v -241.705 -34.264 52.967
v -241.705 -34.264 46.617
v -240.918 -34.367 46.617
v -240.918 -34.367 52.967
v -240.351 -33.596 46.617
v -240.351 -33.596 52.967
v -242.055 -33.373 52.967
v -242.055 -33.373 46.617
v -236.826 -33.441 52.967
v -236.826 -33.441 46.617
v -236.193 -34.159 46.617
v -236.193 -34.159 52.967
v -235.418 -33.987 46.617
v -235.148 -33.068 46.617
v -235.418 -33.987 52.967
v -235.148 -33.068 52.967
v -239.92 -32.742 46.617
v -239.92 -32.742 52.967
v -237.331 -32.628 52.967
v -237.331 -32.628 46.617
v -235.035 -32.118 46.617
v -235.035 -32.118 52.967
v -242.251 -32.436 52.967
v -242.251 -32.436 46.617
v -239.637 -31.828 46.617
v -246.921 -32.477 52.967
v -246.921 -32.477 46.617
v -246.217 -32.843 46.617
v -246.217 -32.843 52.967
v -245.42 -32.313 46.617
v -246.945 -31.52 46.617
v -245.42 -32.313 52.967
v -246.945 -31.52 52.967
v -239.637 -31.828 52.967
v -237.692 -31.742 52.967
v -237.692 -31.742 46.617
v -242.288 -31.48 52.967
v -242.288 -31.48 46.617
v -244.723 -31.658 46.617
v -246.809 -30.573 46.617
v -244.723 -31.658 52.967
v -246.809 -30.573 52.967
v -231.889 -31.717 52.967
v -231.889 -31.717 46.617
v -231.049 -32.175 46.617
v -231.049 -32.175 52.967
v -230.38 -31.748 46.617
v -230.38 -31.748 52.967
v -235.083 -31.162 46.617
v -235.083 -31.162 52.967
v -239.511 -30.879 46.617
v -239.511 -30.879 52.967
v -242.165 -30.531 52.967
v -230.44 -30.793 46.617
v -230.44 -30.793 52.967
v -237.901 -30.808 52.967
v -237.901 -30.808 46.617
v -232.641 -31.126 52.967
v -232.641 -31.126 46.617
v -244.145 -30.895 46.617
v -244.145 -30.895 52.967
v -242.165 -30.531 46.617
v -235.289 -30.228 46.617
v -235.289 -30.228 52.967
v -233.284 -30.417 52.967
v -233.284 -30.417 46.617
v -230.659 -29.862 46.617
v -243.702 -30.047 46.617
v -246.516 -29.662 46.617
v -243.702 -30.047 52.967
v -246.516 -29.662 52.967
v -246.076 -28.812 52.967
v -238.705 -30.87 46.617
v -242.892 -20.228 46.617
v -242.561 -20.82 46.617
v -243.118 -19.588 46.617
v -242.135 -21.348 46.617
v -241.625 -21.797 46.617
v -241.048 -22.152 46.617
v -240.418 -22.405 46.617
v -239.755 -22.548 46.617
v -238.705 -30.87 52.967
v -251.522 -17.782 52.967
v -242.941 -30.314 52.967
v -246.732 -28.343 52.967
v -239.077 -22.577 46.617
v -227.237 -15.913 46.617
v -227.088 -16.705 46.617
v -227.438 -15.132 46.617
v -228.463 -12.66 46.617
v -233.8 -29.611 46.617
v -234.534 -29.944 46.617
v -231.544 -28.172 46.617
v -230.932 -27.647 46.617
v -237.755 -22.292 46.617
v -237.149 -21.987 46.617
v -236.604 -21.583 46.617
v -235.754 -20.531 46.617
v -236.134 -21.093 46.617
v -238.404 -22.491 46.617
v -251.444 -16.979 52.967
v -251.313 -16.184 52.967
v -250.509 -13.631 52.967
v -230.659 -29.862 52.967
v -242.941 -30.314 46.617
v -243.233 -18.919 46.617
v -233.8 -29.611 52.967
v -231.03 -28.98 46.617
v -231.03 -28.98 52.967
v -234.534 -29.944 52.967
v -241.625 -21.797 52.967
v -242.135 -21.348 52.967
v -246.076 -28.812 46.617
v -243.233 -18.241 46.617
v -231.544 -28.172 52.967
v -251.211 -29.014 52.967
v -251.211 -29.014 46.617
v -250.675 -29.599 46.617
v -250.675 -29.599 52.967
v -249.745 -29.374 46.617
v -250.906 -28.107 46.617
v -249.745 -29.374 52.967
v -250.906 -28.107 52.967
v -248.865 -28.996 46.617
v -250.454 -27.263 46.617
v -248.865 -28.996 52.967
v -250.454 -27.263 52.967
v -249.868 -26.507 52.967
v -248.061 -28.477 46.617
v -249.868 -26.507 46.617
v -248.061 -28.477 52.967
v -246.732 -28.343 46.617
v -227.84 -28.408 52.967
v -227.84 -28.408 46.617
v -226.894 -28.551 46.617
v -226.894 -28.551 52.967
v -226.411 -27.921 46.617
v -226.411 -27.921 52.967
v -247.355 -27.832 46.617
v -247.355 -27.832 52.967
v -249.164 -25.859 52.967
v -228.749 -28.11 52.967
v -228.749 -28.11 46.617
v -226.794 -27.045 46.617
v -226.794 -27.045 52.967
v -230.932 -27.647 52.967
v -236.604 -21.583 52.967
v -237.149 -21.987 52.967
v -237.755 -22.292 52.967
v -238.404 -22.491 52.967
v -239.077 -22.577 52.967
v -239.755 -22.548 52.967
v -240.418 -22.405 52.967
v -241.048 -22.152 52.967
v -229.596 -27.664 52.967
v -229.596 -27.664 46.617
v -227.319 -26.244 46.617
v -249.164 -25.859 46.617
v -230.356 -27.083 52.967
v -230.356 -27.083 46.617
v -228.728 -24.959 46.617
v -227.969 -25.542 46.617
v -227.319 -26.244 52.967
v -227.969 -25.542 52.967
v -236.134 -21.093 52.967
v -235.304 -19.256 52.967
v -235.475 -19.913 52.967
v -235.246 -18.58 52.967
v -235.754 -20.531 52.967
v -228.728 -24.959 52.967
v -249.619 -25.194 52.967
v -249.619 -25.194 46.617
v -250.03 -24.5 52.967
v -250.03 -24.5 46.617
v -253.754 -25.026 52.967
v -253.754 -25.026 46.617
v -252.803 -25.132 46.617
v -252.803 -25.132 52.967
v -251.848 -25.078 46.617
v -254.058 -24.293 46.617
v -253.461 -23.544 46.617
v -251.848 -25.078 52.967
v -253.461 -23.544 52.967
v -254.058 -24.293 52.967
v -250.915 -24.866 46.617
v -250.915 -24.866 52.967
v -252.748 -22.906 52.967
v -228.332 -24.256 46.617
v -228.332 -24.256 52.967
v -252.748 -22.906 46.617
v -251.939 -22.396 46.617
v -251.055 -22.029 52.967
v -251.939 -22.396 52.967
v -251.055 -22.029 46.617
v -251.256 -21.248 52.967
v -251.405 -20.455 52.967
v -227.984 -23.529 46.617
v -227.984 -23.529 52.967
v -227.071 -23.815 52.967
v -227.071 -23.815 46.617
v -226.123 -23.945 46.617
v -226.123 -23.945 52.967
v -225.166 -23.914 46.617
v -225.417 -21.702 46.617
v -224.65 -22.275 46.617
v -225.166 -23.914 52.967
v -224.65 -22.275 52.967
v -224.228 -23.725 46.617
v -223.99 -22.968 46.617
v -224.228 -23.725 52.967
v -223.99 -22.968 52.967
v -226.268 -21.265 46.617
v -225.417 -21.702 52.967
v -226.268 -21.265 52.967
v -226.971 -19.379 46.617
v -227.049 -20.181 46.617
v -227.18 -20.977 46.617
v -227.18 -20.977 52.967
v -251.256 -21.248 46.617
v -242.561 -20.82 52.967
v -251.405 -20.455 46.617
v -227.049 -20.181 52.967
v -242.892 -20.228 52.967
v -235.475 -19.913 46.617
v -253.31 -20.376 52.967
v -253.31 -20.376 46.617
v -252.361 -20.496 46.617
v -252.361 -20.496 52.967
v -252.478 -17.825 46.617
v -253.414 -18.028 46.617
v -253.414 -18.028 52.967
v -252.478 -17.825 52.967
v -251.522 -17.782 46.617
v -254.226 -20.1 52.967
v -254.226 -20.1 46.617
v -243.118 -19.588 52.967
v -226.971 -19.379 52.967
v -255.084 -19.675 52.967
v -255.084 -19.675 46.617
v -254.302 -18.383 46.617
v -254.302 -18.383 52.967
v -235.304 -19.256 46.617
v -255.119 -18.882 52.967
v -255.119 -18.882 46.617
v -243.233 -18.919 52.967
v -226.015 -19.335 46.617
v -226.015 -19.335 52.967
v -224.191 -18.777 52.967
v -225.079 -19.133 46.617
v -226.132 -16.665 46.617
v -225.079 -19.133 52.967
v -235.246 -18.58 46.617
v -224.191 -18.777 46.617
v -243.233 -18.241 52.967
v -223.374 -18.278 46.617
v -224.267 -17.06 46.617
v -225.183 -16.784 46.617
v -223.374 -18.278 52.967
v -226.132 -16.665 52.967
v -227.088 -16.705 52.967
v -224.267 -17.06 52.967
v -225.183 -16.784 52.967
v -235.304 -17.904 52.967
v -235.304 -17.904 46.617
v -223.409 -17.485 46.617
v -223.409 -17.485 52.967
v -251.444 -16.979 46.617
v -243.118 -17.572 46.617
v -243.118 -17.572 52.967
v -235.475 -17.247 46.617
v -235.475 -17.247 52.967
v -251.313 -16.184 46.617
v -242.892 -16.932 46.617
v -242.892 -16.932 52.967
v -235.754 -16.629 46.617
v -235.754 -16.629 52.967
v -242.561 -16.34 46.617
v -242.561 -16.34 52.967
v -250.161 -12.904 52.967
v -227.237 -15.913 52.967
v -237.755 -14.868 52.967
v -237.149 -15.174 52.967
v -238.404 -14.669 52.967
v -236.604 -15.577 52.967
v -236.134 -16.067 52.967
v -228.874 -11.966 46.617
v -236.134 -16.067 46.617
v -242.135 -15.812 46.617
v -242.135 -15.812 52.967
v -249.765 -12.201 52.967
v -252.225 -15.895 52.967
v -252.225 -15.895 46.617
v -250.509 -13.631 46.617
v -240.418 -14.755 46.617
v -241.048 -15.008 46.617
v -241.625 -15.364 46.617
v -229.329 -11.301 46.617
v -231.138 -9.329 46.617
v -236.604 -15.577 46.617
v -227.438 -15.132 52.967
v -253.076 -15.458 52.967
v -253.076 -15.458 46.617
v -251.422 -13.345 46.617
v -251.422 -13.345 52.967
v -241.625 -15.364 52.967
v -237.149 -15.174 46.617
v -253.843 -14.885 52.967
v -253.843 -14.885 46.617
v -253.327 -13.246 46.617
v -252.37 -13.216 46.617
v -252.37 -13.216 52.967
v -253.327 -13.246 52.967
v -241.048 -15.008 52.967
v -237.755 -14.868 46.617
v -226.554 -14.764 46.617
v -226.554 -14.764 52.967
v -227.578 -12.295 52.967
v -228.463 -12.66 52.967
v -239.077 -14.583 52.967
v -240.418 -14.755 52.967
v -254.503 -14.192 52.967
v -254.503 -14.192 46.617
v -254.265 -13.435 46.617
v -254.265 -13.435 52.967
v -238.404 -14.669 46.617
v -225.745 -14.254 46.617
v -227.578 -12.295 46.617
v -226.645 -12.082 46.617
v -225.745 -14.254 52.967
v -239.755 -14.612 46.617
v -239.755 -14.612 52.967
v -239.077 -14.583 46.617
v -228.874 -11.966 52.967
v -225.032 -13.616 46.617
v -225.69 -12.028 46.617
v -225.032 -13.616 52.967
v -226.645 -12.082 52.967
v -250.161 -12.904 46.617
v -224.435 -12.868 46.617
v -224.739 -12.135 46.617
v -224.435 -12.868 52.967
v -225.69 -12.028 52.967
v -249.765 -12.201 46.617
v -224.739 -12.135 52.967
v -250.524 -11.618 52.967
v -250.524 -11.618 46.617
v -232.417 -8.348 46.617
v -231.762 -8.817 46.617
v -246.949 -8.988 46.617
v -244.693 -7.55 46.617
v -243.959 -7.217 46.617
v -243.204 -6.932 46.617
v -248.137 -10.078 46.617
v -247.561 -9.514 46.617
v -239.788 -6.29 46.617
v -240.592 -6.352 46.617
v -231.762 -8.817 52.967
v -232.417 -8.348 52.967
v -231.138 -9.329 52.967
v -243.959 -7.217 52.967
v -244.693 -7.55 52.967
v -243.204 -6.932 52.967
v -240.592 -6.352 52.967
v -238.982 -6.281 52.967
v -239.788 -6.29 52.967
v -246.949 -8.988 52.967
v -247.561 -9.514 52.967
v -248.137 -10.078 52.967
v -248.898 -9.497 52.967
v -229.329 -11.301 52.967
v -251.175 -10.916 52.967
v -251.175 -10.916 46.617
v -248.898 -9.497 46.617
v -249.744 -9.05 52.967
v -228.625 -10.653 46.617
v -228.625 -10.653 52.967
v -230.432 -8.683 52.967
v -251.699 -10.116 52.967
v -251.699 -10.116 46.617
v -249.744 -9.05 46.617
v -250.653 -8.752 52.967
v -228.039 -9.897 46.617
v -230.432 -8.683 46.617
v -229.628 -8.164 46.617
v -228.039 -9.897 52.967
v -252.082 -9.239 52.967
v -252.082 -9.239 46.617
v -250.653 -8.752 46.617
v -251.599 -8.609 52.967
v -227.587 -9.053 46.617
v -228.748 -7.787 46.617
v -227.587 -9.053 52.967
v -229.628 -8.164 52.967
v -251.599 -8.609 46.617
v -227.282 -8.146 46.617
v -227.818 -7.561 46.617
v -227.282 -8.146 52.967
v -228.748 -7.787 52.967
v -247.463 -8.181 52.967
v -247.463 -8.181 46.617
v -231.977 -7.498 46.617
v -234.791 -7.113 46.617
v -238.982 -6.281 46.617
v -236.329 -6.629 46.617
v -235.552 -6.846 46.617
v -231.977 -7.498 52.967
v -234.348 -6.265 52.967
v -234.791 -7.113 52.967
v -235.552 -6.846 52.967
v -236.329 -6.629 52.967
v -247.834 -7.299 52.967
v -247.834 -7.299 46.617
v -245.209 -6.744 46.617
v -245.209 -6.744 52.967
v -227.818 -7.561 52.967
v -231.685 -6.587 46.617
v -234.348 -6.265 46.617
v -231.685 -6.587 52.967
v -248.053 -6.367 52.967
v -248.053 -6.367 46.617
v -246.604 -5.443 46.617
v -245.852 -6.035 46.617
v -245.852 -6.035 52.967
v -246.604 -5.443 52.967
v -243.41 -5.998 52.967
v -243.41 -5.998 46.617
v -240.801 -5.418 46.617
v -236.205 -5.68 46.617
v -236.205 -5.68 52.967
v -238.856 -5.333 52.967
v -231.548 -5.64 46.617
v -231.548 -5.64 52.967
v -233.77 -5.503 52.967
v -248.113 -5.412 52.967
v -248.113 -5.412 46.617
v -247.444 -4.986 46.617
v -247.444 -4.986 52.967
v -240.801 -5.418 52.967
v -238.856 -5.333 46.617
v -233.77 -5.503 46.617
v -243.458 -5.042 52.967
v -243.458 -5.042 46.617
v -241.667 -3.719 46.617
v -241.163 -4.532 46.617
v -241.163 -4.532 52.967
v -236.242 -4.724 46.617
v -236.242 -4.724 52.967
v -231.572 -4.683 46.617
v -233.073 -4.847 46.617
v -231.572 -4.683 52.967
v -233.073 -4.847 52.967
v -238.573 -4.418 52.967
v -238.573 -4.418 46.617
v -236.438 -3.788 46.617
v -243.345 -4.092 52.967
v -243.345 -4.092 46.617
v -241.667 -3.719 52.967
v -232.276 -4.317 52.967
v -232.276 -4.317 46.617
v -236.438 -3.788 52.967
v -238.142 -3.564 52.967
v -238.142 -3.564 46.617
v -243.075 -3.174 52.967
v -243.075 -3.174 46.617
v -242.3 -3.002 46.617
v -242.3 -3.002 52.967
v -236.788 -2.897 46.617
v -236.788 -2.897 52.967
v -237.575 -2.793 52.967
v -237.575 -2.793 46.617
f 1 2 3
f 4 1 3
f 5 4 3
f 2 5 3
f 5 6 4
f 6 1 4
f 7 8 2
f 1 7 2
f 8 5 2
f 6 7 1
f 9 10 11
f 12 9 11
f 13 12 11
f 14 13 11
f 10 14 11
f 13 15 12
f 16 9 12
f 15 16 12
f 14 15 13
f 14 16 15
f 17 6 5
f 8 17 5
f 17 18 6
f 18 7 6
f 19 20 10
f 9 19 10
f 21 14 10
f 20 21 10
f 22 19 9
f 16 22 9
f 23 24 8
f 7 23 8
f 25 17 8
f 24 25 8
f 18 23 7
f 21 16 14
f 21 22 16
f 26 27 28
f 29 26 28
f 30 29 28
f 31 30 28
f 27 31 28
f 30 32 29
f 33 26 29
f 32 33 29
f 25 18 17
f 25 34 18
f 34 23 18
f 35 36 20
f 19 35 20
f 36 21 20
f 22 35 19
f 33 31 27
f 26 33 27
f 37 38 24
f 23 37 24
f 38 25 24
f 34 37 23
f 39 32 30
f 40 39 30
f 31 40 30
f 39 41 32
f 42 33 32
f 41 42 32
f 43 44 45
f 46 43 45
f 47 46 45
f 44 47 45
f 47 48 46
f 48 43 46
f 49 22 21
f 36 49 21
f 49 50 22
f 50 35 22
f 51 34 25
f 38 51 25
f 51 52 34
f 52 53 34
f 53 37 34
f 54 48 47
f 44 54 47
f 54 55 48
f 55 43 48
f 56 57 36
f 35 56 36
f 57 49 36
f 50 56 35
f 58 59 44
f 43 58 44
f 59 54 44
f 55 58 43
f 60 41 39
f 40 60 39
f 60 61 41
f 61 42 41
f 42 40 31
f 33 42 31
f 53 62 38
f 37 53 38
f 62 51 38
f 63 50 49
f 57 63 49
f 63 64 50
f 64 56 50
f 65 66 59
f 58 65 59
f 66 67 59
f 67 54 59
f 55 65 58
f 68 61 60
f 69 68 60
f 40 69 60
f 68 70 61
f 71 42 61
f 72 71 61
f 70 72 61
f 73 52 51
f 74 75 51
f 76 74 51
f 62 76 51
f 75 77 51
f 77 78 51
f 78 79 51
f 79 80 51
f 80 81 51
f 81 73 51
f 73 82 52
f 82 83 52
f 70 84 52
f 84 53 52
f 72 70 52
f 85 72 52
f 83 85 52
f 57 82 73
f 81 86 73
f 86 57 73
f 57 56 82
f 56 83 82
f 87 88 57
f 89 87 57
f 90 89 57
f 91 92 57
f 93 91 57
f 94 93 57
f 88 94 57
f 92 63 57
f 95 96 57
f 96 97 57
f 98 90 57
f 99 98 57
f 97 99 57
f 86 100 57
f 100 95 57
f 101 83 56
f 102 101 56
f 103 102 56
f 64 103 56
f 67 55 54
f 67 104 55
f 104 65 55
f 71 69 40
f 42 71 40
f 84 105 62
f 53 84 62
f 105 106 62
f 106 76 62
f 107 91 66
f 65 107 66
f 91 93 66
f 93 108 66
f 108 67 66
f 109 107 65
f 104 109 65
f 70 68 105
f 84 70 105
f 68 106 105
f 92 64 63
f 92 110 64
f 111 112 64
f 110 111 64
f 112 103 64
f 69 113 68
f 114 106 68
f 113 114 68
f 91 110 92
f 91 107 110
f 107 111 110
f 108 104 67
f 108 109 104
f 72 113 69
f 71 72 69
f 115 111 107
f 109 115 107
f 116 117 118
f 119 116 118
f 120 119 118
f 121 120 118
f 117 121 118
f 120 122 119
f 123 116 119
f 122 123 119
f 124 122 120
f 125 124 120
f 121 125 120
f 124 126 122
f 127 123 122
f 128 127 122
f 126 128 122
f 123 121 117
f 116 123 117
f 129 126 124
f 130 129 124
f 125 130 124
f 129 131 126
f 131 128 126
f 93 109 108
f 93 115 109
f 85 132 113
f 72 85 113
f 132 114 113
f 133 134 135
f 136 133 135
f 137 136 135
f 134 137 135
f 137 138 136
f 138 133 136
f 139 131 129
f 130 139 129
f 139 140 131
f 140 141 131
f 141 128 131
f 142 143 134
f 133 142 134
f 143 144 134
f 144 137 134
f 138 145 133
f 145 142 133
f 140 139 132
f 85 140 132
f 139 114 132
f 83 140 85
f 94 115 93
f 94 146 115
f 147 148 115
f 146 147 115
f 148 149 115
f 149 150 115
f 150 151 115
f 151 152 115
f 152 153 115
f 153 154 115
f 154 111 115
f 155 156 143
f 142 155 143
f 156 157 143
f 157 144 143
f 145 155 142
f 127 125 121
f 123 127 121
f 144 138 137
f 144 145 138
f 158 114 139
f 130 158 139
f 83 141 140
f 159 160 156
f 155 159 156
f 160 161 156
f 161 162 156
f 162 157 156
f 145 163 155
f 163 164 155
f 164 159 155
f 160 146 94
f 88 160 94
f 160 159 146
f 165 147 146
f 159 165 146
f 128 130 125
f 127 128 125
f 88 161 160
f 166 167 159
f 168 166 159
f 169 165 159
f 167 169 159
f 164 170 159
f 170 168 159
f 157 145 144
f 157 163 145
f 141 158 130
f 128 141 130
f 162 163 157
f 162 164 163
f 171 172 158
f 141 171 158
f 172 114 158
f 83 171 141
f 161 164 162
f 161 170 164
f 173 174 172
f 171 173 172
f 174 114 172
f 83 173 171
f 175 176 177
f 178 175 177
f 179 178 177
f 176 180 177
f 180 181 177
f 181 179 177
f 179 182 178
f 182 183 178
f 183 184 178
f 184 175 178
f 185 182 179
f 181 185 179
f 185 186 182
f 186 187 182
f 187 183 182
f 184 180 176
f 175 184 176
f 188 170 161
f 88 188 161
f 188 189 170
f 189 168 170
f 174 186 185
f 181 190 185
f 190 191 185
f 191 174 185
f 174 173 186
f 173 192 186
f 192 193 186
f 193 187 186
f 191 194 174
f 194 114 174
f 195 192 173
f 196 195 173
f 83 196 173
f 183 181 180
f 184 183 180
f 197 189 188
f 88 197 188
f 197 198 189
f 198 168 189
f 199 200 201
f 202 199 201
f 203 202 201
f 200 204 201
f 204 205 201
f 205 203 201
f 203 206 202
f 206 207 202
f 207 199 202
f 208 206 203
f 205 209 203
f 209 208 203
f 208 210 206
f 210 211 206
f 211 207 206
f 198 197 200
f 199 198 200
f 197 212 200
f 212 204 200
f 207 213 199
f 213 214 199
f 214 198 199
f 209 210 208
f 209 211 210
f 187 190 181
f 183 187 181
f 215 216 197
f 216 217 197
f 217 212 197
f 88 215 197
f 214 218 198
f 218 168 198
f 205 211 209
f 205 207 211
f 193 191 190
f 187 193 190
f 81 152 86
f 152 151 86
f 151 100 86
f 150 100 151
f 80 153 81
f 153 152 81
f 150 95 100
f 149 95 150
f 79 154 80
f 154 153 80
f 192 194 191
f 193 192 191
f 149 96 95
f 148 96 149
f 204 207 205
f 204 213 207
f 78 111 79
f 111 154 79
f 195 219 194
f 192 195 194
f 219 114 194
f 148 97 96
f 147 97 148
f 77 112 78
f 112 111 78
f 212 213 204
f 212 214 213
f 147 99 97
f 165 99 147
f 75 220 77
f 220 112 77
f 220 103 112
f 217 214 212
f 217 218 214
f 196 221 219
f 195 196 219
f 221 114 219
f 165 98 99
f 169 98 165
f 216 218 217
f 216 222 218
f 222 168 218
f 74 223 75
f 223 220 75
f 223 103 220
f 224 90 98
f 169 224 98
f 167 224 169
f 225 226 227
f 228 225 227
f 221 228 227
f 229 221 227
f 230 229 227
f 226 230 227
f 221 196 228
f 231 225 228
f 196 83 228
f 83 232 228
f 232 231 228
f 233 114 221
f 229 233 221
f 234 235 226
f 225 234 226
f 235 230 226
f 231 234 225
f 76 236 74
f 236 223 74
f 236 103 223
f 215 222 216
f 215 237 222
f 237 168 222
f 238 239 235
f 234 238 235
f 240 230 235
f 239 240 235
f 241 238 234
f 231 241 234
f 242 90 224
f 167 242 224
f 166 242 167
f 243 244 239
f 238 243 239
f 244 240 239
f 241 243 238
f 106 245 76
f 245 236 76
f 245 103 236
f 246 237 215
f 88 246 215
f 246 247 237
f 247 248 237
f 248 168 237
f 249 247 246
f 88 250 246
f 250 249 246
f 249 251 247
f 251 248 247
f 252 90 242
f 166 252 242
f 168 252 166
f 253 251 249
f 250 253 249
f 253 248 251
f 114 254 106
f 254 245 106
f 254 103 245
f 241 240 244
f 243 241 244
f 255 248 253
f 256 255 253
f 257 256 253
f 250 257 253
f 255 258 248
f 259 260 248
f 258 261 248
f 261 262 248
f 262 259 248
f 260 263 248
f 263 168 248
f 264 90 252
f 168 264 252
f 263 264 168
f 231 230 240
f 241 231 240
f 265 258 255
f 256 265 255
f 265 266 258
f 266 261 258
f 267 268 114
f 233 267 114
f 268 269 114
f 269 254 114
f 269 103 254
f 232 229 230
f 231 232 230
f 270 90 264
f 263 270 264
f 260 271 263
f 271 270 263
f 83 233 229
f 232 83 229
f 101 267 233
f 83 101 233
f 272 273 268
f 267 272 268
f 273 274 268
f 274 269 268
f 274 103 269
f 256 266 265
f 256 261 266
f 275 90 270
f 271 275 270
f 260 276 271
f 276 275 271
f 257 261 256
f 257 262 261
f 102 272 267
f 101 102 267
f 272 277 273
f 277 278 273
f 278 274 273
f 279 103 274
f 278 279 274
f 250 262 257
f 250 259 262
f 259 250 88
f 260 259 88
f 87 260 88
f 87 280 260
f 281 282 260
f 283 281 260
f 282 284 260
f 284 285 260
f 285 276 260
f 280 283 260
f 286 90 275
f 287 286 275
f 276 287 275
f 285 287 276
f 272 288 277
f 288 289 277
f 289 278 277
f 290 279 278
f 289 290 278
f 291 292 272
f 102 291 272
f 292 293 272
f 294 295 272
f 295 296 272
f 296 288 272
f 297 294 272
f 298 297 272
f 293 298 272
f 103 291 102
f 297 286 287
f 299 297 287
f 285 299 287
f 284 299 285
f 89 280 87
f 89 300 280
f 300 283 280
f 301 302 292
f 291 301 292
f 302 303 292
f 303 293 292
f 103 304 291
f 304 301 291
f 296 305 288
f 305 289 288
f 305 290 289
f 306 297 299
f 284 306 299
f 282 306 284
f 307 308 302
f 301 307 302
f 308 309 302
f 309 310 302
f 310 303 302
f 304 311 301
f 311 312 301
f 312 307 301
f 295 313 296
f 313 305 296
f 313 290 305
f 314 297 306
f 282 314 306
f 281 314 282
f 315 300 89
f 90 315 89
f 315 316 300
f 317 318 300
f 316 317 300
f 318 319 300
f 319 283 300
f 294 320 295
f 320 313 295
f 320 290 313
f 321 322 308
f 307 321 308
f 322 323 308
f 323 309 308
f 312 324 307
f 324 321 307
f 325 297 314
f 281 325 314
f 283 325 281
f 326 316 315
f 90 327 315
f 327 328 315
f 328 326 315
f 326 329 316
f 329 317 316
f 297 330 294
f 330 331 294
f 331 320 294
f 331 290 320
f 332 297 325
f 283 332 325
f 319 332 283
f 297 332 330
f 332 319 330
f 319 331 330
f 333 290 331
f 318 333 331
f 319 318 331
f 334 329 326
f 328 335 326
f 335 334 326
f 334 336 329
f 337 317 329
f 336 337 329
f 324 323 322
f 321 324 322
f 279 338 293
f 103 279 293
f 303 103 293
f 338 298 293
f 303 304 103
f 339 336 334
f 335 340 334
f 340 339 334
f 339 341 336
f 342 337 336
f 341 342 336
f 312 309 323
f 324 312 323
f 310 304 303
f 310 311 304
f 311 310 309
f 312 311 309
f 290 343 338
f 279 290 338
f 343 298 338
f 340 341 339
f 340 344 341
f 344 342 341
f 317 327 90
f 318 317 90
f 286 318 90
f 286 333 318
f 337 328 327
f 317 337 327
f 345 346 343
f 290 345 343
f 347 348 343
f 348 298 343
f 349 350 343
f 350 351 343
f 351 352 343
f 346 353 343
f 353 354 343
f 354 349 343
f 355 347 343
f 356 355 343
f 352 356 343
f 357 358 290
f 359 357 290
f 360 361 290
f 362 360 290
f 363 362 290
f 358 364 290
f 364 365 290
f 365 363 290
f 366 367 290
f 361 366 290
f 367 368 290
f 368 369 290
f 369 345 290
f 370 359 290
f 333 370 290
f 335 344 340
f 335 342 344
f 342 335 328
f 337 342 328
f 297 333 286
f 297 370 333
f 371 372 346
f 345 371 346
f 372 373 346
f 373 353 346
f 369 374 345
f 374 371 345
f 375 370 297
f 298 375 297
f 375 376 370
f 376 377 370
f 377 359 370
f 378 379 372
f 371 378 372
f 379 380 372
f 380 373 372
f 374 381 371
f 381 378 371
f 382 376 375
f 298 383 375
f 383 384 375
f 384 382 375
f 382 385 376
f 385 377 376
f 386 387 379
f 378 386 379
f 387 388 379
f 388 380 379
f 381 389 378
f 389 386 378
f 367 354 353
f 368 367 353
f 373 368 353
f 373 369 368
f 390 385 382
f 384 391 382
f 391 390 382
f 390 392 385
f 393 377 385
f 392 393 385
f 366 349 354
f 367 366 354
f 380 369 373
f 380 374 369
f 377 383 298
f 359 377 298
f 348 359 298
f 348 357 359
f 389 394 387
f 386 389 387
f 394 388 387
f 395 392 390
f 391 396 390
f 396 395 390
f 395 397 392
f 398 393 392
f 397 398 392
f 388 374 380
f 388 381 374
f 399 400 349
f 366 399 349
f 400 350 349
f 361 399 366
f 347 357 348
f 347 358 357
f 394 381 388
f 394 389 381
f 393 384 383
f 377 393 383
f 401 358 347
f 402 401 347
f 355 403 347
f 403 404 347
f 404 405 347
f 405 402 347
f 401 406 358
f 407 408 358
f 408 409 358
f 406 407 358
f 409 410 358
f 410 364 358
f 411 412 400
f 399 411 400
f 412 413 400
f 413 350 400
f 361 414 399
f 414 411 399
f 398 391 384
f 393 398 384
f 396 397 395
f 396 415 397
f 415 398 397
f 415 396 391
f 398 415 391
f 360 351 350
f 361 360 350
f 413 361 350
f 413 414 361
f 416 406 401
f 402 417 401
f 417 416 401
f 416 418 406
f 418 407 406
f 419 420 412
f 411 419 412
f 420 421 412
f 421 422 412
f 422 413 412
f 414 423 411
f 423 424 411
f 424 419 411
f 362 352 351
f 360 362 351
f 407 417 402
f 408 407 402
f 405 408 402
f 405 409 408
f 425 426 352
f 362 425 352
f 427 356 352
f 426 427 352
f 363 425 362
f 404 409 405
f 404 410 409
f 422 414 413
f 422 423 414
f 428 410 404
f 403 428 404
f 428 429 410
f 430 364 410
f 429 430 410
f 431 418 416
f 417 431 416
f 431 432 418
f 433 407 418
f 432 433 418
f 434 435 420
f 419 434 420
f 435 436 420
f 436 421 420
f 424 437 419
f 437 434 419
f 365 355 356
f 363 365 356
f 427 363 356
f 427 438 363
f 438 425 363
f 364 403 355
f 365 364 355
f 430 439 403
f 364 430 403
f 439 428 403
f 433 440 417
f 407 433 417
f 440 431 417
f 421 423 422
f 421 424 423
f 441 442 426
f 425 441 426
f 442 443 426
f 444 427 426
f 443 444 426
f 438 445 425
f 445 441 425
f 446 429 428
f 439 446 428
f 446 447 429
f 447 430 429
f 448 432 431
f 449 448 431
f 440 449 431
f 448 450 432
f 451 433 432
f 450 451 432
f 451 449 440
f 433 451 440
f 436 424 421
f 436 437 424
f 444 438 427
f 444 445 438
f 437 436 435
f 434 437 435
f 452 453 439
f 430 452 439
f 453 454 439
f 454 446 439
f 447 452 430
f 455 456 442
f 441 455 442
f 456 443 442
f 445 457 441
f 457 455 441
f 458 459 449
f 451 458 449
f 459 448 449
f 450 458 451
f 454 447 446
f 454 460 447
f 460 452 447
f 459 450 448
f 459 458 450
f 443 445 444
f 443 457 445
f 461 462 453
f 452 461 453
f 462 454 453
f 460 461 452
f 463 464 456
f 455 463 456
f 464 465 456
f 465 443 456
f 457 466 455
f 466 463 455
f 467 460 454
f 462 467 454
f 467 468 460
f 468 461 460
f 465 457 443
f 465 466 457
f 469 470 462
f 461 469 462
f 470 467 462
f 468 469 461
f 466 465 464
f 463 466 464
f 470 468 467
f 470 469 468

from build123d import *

# Parameters (mm, degrees)
SKETCH5_R           = 0.396875
BOSS_EXTRUDE2_DEPTH = 6.35
SKETCH6_R           = 2.9972
CUT_EXTRUDE1_DEPTH  = 258.501368276
SKETCH7_R           = 4.0005
CUT_EXTRUDE2_DEPTH  = 258.501368276


with BuildPart() as part:
    # Sketch5 → Boss-Extrude2 (new body)
    with BuildSketch(Plane(origin=(0, 0, 46.616707813), x_dir=(-1, 0, 0), z_dir=(0, 0, -1))):
        with BuildLine():
            ThreePointArc((246.921074011, -32.476835359), (246.808601397, -30.573015348), (246.075978074, -28.812207638))
            ThreePointArc((246.075978074, -28.812207638), (246.731600791, -28.342840277), (247.355067366, -27.831531862))
            ThreePointArc((247.355067366, -27.831531862), (248.865338892, -28.996117901), (250.674701217, -29.598935203))
            ThreePointArc((250.674701217, -29.598935203), (250.946601365, -29.309785139), (251.211187708, -29.013927881))
            ThreePointArc((251.211187708, -29.013927881), (250.454353229, -27.263390165), (249.163680793, -25.859344087))
            ThreePointArc((249.163680793, -25.859344087), (249.61923153, -25.194046866), (250.030220693, -24.500335994))
            ThreePointArc((250.030220693, -24.500335994), (251.847723585, -25.078145617), (253.754143671, -25.025770226))
            ThreePointArc((253.754143671, -25.025770226), (253.910751087, -24.661062717), (254.058191779, -24.292553976))
            ThreePointArc((254.058191779, -24.292553976), (252.748280843, -22.906439239), (251.055233439, -22.028503472))
            ThreePointArc((251.055233439, -22.028503472), (251.255766054, -21.247521054), (251.404706445, -20.455079495))
            ThreePointArc((251.404706445, -20.455079495), (253.310223032, -20.376420334), (255.083758479, -19.675169494))
            ThreePointArc((255.083758479, -19.675169494), (255.106183999, -19.278893649), (255.118695516, -18.882181018))
            ThreePointArc((255.118695516, -18.882181018), (253.413702715, -18.027675153), (251.522486845, -17.781741707))
            ThreePointArc((251.522486845, -17.781741707), (251.443814146, -16.979272099), (251.312741357, -16.183679999))
            ThreePointArc((251.312741357, -16.183679999), (253.076438214, -15.45803951), (254.503174475, -14.192494423))
            ThreePointArc((254.503174475, -14.192494423), (254.388713248, -13.812446955), (254.264786518, -13.435379832))
            ThreePointArc((254.264786518, -13.435379832), (252.370359146, -13.215548859), (250.509083356, -13.631280938))
            ThreePointArc((250.509083356, -13.631280938), (250.16069443, -12.904113816), (249.765417774, -12.201331325))
            ThreePointArc((249.765417774, -12.201331325), (251.174567032, -10.91623246), (252.082418656, -9.23903654))
            ThreePointArc((252.082418656, -9.23903654), (251.844876396, -8.921056785), (251.599458811, -8.60911503))
            ThreePointArc((251.599458811, -8.60911503), (249.744092768, -9.050473808), (248.137254388, -10.077727986))
            ThreePointArc((248.137254388, -10.077727986), (247.561170083, -9.513570439), (246.949365757, -8.988363496))
            ThreePointArc((246.949365757, -8.988363496), (247.834003218, -7.298808145), (248.113469901, -5.412255973))
            ThreePointArc((248.113469901, -5.412255973), (247.781497711, -5.19469698), (247.444190253, -4.985505373))
            ThreePointArc((247.444190253, -4.985505373), (245.851670066, -6.03481952), (244.69307752, -7.549693784))
            ThreePointArc((244.69307752, -7.549693784), (243.958782103, -7.216591536), (243.204242739, -6.932307851))
            ThreePointArc((243.204242739, -6.932307851), (243.457668071, -5.042081324), (243.075042005, -3.173718934))
            ThreePointArc((243.075042005, -3.173718934), (242.688680631, -3.08282153), (242.300167558, -3.001611666))
            ThreePointArc((242.300167558, -3.001611666), (241.162574665, -4.532318409), (240.591971311, -6.352096565))
            ThreePointArc((240.591971311, -6.352096565), (239.788031649, -6.290226665), (238.981765829, -6.281155045))
            ThreePointArc((238.981765829, -6.281155045), (238.573412195, -4.418246557), (237.574843733, -2.793426028))
            ThreePointArc((237.574843733, -2.793426028), (237.180694057, -2.840153782), (236.78783578, -2.896720768))
            ThreePointArc((236.78783578, -2.896720768), (236.242380673, -4.724194283), (236.328589698, -6.629384229))
            ThreePointArc((236.328589698, -6.629384229), (235.551972777, -6.846209099), (234.79122806, -7.113443716))
            ThreePointArc((234.79122806, -7.113443716), (233.770348935, -5.502547525), (232.27628017, -4.317246193))
            ThreePointArc((232.27628017, -4.317246193), (231.921882461, -4.495963046), (231.572063485, -4.68348407))
            ThreePointArc((231.572063485, -4.68348407), (231.6845361, -6.587304081), (232.417159423, -8.348111791))
            ThreePointArc((232.417159423, -8.348111791), (231.761536706, -8.817479152), (231.138070131, -9.328787567))
            ThreePointArc((231.138070131, -9.328787567), (229.627798605, -8.164201528), (227.818436279, -7.561384226))
            ThreePointArc((227.818436279, -7.561384226), (227.546536131, -7.850534289), (227.281949789, -8.146391548))
            ThreePointArc((227.281949789, -8.146391548), (228.038784268, -9.896929264), (229.329456703, -11.300975342))
            ThreePointArc((229.329456703, -11.300975342), (228.873905967, -11.966272563), (228.462916804, -12.659983435))
            ThreePointArc((228.462916804, -12.659983435), (226.645413911, -12.082173811), (224.738993826, -12.134549203))
            ThreePointArc((224.738993826, -12.134549203), (224.582386409, -12.499256711), (224.434945718, -12.867765452))
            ThreePointArc((224.434945718, -12.867765452), (225.744856653, -14.25388019), (227.437904058, -15.131815957))
            ThreePointArc((227.437904058, -15.131815957), (227.237371443, -15.912798374), (227.088431051, -16.705239934))
            ThreePointArc((227.088431051, -16.705239934), (225.182914465, -16.783899095), (223.409379017, -17.485149934))
            ThreePointArc((223.409379017, -17.485149934), (223.386953498, -17.88142578), (223.374441981, -18.278138411))
            ThreePointArc((223.374441981, -18.278138411), (225.079434782, -19.132644276), (226.970650651, -19.378577722))
            ThreePointArc((226.970650651, -19.378577722), (227.049323351, -20.18104733), (227.18039614, -20.97663943))
            ThreePointArc((227.18039614, -20.97663943), (225.416699282, -21.702279919), (223.989963022, -22.967825006))
            ThreePointArc((223.989963022, -22.967825006), (224.104424249, -23.347872473), (224.228350979, -23.724939596))
            ThreePointArc((224.228350979, -23.724939596), (226.122778351, -23.944770569), (227.98405414, -23.529038491))
            ThreePointArc((227.98405414, -23.529038491), (228.332443066, -24.256205612), (228.727719723, -24.958988104))
            ThreePointArc((228.727719723, -24.958988104), (227.318570464, -26.244086969), (226.410718841, -27.921282889))
            ThreePointArc((226.410718841, -27.921282889), (226.6482611, -28.239262644), (226.893678686, -28.551204399))
            ThreePointArc((226.893678686, -28.551204399), (228.749044729, -28.109845621), (230.355883108, -27.082591442))
            ThreePointArc((230.355883108, -27.082591442), (230.931967414, -27.64674899), (231.54377174, -28.171955932))
            ThreePointArc((231.54377174, -28.171955932), (230.659134278, -29.861511284), (230.379667596, -31.748063456))
            ThreePointArc((230.379667596, -31.748063456), (230.711639785, -31.965622448), (231.048947243, -32.174814056))
            ThreePointArc((231.048947243, -32.174814056), (232.64146743, -31.125499909), (233.800059977, -29.610625645))
            ThreePointArc((233.800059977, -29.610625645), (234.534355393, -29.943727892), (235.288894757, -30.228011577))
            ThreePointArc((235.288894757, -30.228011577), (235.035469426, -32.118238105), (235.418095491, -33.986600495))
            ThreePointArc((235.418095491, -33.986600495), (235.804456866, -34.077497898), (236.192969938, -34.158707763))
            ThreePointArc((236.192969938, -34.158707763), (237.330562832, -32.62800102), (237.901166185, -30.808222864))
            ThreePointArc((237.901166185, -30.808222864), (238.705105848, -30.870092764), (239.511371667, -30.879164384))
            ThreePointArc((239.511371667, -30.879164384), (239.919725301, -32.742072872), (240.918293764, -34.3668934))
            ThreePointArc((240.918293764, -34.3668934), (241.312443439, -34.320165647), (241.705301716, -34.263598661))
            ThreePointArc((241.705301716, -34.263598661), (242.250756824, -32.436125145), (242.164547799, -30.5309352))
            ThreePointArc((242.164547799, -30.5309352), (242.94116472, -30.31411033), (243.701909437, -30.046875713))
            ThreePointArc((243.701909437, -30.046875713), (244.722788562, -31.657771904), (246.216857327, -32.843073236))
            ThreePointArc((246.216857327, -32.843073236), (246.571255036, -32.664356383), (246.921074011, -32.476835359))
        make_face()
        with Locations((239.246568748, -18.580159714)):
            Circle(SKETCH5_R, mode=Mode.SUBTRACT)
    extrude(amount=-BOSS_EXTRUDE2_DEPTH)

    # Sketch6 → Cut-Extrude1 (cut, through all)
    with BuildSketch(Plane.XY.offset(52.966707813)):
        with Locations((-239.246568748, -18.580159714)):
            Circle(SKETCH6_R)
    extrude(amount=-CUT_EXTRUDE1_DEPTH, mode=Mode.SUBTRACT)

    # Sketch7 → Cut-Extrude2 (cut, through all)
    with BuildSketch(Plane.XY.offset(52.966707813)):
        with Locations((-239.246568748, -18.580159714)):
            Circle(SKETCH7_R)
    extrude(amount=-CUT_EXTRUDE2_DEPTH, mode=Mode.SUBTRACT)


solid = part.part
